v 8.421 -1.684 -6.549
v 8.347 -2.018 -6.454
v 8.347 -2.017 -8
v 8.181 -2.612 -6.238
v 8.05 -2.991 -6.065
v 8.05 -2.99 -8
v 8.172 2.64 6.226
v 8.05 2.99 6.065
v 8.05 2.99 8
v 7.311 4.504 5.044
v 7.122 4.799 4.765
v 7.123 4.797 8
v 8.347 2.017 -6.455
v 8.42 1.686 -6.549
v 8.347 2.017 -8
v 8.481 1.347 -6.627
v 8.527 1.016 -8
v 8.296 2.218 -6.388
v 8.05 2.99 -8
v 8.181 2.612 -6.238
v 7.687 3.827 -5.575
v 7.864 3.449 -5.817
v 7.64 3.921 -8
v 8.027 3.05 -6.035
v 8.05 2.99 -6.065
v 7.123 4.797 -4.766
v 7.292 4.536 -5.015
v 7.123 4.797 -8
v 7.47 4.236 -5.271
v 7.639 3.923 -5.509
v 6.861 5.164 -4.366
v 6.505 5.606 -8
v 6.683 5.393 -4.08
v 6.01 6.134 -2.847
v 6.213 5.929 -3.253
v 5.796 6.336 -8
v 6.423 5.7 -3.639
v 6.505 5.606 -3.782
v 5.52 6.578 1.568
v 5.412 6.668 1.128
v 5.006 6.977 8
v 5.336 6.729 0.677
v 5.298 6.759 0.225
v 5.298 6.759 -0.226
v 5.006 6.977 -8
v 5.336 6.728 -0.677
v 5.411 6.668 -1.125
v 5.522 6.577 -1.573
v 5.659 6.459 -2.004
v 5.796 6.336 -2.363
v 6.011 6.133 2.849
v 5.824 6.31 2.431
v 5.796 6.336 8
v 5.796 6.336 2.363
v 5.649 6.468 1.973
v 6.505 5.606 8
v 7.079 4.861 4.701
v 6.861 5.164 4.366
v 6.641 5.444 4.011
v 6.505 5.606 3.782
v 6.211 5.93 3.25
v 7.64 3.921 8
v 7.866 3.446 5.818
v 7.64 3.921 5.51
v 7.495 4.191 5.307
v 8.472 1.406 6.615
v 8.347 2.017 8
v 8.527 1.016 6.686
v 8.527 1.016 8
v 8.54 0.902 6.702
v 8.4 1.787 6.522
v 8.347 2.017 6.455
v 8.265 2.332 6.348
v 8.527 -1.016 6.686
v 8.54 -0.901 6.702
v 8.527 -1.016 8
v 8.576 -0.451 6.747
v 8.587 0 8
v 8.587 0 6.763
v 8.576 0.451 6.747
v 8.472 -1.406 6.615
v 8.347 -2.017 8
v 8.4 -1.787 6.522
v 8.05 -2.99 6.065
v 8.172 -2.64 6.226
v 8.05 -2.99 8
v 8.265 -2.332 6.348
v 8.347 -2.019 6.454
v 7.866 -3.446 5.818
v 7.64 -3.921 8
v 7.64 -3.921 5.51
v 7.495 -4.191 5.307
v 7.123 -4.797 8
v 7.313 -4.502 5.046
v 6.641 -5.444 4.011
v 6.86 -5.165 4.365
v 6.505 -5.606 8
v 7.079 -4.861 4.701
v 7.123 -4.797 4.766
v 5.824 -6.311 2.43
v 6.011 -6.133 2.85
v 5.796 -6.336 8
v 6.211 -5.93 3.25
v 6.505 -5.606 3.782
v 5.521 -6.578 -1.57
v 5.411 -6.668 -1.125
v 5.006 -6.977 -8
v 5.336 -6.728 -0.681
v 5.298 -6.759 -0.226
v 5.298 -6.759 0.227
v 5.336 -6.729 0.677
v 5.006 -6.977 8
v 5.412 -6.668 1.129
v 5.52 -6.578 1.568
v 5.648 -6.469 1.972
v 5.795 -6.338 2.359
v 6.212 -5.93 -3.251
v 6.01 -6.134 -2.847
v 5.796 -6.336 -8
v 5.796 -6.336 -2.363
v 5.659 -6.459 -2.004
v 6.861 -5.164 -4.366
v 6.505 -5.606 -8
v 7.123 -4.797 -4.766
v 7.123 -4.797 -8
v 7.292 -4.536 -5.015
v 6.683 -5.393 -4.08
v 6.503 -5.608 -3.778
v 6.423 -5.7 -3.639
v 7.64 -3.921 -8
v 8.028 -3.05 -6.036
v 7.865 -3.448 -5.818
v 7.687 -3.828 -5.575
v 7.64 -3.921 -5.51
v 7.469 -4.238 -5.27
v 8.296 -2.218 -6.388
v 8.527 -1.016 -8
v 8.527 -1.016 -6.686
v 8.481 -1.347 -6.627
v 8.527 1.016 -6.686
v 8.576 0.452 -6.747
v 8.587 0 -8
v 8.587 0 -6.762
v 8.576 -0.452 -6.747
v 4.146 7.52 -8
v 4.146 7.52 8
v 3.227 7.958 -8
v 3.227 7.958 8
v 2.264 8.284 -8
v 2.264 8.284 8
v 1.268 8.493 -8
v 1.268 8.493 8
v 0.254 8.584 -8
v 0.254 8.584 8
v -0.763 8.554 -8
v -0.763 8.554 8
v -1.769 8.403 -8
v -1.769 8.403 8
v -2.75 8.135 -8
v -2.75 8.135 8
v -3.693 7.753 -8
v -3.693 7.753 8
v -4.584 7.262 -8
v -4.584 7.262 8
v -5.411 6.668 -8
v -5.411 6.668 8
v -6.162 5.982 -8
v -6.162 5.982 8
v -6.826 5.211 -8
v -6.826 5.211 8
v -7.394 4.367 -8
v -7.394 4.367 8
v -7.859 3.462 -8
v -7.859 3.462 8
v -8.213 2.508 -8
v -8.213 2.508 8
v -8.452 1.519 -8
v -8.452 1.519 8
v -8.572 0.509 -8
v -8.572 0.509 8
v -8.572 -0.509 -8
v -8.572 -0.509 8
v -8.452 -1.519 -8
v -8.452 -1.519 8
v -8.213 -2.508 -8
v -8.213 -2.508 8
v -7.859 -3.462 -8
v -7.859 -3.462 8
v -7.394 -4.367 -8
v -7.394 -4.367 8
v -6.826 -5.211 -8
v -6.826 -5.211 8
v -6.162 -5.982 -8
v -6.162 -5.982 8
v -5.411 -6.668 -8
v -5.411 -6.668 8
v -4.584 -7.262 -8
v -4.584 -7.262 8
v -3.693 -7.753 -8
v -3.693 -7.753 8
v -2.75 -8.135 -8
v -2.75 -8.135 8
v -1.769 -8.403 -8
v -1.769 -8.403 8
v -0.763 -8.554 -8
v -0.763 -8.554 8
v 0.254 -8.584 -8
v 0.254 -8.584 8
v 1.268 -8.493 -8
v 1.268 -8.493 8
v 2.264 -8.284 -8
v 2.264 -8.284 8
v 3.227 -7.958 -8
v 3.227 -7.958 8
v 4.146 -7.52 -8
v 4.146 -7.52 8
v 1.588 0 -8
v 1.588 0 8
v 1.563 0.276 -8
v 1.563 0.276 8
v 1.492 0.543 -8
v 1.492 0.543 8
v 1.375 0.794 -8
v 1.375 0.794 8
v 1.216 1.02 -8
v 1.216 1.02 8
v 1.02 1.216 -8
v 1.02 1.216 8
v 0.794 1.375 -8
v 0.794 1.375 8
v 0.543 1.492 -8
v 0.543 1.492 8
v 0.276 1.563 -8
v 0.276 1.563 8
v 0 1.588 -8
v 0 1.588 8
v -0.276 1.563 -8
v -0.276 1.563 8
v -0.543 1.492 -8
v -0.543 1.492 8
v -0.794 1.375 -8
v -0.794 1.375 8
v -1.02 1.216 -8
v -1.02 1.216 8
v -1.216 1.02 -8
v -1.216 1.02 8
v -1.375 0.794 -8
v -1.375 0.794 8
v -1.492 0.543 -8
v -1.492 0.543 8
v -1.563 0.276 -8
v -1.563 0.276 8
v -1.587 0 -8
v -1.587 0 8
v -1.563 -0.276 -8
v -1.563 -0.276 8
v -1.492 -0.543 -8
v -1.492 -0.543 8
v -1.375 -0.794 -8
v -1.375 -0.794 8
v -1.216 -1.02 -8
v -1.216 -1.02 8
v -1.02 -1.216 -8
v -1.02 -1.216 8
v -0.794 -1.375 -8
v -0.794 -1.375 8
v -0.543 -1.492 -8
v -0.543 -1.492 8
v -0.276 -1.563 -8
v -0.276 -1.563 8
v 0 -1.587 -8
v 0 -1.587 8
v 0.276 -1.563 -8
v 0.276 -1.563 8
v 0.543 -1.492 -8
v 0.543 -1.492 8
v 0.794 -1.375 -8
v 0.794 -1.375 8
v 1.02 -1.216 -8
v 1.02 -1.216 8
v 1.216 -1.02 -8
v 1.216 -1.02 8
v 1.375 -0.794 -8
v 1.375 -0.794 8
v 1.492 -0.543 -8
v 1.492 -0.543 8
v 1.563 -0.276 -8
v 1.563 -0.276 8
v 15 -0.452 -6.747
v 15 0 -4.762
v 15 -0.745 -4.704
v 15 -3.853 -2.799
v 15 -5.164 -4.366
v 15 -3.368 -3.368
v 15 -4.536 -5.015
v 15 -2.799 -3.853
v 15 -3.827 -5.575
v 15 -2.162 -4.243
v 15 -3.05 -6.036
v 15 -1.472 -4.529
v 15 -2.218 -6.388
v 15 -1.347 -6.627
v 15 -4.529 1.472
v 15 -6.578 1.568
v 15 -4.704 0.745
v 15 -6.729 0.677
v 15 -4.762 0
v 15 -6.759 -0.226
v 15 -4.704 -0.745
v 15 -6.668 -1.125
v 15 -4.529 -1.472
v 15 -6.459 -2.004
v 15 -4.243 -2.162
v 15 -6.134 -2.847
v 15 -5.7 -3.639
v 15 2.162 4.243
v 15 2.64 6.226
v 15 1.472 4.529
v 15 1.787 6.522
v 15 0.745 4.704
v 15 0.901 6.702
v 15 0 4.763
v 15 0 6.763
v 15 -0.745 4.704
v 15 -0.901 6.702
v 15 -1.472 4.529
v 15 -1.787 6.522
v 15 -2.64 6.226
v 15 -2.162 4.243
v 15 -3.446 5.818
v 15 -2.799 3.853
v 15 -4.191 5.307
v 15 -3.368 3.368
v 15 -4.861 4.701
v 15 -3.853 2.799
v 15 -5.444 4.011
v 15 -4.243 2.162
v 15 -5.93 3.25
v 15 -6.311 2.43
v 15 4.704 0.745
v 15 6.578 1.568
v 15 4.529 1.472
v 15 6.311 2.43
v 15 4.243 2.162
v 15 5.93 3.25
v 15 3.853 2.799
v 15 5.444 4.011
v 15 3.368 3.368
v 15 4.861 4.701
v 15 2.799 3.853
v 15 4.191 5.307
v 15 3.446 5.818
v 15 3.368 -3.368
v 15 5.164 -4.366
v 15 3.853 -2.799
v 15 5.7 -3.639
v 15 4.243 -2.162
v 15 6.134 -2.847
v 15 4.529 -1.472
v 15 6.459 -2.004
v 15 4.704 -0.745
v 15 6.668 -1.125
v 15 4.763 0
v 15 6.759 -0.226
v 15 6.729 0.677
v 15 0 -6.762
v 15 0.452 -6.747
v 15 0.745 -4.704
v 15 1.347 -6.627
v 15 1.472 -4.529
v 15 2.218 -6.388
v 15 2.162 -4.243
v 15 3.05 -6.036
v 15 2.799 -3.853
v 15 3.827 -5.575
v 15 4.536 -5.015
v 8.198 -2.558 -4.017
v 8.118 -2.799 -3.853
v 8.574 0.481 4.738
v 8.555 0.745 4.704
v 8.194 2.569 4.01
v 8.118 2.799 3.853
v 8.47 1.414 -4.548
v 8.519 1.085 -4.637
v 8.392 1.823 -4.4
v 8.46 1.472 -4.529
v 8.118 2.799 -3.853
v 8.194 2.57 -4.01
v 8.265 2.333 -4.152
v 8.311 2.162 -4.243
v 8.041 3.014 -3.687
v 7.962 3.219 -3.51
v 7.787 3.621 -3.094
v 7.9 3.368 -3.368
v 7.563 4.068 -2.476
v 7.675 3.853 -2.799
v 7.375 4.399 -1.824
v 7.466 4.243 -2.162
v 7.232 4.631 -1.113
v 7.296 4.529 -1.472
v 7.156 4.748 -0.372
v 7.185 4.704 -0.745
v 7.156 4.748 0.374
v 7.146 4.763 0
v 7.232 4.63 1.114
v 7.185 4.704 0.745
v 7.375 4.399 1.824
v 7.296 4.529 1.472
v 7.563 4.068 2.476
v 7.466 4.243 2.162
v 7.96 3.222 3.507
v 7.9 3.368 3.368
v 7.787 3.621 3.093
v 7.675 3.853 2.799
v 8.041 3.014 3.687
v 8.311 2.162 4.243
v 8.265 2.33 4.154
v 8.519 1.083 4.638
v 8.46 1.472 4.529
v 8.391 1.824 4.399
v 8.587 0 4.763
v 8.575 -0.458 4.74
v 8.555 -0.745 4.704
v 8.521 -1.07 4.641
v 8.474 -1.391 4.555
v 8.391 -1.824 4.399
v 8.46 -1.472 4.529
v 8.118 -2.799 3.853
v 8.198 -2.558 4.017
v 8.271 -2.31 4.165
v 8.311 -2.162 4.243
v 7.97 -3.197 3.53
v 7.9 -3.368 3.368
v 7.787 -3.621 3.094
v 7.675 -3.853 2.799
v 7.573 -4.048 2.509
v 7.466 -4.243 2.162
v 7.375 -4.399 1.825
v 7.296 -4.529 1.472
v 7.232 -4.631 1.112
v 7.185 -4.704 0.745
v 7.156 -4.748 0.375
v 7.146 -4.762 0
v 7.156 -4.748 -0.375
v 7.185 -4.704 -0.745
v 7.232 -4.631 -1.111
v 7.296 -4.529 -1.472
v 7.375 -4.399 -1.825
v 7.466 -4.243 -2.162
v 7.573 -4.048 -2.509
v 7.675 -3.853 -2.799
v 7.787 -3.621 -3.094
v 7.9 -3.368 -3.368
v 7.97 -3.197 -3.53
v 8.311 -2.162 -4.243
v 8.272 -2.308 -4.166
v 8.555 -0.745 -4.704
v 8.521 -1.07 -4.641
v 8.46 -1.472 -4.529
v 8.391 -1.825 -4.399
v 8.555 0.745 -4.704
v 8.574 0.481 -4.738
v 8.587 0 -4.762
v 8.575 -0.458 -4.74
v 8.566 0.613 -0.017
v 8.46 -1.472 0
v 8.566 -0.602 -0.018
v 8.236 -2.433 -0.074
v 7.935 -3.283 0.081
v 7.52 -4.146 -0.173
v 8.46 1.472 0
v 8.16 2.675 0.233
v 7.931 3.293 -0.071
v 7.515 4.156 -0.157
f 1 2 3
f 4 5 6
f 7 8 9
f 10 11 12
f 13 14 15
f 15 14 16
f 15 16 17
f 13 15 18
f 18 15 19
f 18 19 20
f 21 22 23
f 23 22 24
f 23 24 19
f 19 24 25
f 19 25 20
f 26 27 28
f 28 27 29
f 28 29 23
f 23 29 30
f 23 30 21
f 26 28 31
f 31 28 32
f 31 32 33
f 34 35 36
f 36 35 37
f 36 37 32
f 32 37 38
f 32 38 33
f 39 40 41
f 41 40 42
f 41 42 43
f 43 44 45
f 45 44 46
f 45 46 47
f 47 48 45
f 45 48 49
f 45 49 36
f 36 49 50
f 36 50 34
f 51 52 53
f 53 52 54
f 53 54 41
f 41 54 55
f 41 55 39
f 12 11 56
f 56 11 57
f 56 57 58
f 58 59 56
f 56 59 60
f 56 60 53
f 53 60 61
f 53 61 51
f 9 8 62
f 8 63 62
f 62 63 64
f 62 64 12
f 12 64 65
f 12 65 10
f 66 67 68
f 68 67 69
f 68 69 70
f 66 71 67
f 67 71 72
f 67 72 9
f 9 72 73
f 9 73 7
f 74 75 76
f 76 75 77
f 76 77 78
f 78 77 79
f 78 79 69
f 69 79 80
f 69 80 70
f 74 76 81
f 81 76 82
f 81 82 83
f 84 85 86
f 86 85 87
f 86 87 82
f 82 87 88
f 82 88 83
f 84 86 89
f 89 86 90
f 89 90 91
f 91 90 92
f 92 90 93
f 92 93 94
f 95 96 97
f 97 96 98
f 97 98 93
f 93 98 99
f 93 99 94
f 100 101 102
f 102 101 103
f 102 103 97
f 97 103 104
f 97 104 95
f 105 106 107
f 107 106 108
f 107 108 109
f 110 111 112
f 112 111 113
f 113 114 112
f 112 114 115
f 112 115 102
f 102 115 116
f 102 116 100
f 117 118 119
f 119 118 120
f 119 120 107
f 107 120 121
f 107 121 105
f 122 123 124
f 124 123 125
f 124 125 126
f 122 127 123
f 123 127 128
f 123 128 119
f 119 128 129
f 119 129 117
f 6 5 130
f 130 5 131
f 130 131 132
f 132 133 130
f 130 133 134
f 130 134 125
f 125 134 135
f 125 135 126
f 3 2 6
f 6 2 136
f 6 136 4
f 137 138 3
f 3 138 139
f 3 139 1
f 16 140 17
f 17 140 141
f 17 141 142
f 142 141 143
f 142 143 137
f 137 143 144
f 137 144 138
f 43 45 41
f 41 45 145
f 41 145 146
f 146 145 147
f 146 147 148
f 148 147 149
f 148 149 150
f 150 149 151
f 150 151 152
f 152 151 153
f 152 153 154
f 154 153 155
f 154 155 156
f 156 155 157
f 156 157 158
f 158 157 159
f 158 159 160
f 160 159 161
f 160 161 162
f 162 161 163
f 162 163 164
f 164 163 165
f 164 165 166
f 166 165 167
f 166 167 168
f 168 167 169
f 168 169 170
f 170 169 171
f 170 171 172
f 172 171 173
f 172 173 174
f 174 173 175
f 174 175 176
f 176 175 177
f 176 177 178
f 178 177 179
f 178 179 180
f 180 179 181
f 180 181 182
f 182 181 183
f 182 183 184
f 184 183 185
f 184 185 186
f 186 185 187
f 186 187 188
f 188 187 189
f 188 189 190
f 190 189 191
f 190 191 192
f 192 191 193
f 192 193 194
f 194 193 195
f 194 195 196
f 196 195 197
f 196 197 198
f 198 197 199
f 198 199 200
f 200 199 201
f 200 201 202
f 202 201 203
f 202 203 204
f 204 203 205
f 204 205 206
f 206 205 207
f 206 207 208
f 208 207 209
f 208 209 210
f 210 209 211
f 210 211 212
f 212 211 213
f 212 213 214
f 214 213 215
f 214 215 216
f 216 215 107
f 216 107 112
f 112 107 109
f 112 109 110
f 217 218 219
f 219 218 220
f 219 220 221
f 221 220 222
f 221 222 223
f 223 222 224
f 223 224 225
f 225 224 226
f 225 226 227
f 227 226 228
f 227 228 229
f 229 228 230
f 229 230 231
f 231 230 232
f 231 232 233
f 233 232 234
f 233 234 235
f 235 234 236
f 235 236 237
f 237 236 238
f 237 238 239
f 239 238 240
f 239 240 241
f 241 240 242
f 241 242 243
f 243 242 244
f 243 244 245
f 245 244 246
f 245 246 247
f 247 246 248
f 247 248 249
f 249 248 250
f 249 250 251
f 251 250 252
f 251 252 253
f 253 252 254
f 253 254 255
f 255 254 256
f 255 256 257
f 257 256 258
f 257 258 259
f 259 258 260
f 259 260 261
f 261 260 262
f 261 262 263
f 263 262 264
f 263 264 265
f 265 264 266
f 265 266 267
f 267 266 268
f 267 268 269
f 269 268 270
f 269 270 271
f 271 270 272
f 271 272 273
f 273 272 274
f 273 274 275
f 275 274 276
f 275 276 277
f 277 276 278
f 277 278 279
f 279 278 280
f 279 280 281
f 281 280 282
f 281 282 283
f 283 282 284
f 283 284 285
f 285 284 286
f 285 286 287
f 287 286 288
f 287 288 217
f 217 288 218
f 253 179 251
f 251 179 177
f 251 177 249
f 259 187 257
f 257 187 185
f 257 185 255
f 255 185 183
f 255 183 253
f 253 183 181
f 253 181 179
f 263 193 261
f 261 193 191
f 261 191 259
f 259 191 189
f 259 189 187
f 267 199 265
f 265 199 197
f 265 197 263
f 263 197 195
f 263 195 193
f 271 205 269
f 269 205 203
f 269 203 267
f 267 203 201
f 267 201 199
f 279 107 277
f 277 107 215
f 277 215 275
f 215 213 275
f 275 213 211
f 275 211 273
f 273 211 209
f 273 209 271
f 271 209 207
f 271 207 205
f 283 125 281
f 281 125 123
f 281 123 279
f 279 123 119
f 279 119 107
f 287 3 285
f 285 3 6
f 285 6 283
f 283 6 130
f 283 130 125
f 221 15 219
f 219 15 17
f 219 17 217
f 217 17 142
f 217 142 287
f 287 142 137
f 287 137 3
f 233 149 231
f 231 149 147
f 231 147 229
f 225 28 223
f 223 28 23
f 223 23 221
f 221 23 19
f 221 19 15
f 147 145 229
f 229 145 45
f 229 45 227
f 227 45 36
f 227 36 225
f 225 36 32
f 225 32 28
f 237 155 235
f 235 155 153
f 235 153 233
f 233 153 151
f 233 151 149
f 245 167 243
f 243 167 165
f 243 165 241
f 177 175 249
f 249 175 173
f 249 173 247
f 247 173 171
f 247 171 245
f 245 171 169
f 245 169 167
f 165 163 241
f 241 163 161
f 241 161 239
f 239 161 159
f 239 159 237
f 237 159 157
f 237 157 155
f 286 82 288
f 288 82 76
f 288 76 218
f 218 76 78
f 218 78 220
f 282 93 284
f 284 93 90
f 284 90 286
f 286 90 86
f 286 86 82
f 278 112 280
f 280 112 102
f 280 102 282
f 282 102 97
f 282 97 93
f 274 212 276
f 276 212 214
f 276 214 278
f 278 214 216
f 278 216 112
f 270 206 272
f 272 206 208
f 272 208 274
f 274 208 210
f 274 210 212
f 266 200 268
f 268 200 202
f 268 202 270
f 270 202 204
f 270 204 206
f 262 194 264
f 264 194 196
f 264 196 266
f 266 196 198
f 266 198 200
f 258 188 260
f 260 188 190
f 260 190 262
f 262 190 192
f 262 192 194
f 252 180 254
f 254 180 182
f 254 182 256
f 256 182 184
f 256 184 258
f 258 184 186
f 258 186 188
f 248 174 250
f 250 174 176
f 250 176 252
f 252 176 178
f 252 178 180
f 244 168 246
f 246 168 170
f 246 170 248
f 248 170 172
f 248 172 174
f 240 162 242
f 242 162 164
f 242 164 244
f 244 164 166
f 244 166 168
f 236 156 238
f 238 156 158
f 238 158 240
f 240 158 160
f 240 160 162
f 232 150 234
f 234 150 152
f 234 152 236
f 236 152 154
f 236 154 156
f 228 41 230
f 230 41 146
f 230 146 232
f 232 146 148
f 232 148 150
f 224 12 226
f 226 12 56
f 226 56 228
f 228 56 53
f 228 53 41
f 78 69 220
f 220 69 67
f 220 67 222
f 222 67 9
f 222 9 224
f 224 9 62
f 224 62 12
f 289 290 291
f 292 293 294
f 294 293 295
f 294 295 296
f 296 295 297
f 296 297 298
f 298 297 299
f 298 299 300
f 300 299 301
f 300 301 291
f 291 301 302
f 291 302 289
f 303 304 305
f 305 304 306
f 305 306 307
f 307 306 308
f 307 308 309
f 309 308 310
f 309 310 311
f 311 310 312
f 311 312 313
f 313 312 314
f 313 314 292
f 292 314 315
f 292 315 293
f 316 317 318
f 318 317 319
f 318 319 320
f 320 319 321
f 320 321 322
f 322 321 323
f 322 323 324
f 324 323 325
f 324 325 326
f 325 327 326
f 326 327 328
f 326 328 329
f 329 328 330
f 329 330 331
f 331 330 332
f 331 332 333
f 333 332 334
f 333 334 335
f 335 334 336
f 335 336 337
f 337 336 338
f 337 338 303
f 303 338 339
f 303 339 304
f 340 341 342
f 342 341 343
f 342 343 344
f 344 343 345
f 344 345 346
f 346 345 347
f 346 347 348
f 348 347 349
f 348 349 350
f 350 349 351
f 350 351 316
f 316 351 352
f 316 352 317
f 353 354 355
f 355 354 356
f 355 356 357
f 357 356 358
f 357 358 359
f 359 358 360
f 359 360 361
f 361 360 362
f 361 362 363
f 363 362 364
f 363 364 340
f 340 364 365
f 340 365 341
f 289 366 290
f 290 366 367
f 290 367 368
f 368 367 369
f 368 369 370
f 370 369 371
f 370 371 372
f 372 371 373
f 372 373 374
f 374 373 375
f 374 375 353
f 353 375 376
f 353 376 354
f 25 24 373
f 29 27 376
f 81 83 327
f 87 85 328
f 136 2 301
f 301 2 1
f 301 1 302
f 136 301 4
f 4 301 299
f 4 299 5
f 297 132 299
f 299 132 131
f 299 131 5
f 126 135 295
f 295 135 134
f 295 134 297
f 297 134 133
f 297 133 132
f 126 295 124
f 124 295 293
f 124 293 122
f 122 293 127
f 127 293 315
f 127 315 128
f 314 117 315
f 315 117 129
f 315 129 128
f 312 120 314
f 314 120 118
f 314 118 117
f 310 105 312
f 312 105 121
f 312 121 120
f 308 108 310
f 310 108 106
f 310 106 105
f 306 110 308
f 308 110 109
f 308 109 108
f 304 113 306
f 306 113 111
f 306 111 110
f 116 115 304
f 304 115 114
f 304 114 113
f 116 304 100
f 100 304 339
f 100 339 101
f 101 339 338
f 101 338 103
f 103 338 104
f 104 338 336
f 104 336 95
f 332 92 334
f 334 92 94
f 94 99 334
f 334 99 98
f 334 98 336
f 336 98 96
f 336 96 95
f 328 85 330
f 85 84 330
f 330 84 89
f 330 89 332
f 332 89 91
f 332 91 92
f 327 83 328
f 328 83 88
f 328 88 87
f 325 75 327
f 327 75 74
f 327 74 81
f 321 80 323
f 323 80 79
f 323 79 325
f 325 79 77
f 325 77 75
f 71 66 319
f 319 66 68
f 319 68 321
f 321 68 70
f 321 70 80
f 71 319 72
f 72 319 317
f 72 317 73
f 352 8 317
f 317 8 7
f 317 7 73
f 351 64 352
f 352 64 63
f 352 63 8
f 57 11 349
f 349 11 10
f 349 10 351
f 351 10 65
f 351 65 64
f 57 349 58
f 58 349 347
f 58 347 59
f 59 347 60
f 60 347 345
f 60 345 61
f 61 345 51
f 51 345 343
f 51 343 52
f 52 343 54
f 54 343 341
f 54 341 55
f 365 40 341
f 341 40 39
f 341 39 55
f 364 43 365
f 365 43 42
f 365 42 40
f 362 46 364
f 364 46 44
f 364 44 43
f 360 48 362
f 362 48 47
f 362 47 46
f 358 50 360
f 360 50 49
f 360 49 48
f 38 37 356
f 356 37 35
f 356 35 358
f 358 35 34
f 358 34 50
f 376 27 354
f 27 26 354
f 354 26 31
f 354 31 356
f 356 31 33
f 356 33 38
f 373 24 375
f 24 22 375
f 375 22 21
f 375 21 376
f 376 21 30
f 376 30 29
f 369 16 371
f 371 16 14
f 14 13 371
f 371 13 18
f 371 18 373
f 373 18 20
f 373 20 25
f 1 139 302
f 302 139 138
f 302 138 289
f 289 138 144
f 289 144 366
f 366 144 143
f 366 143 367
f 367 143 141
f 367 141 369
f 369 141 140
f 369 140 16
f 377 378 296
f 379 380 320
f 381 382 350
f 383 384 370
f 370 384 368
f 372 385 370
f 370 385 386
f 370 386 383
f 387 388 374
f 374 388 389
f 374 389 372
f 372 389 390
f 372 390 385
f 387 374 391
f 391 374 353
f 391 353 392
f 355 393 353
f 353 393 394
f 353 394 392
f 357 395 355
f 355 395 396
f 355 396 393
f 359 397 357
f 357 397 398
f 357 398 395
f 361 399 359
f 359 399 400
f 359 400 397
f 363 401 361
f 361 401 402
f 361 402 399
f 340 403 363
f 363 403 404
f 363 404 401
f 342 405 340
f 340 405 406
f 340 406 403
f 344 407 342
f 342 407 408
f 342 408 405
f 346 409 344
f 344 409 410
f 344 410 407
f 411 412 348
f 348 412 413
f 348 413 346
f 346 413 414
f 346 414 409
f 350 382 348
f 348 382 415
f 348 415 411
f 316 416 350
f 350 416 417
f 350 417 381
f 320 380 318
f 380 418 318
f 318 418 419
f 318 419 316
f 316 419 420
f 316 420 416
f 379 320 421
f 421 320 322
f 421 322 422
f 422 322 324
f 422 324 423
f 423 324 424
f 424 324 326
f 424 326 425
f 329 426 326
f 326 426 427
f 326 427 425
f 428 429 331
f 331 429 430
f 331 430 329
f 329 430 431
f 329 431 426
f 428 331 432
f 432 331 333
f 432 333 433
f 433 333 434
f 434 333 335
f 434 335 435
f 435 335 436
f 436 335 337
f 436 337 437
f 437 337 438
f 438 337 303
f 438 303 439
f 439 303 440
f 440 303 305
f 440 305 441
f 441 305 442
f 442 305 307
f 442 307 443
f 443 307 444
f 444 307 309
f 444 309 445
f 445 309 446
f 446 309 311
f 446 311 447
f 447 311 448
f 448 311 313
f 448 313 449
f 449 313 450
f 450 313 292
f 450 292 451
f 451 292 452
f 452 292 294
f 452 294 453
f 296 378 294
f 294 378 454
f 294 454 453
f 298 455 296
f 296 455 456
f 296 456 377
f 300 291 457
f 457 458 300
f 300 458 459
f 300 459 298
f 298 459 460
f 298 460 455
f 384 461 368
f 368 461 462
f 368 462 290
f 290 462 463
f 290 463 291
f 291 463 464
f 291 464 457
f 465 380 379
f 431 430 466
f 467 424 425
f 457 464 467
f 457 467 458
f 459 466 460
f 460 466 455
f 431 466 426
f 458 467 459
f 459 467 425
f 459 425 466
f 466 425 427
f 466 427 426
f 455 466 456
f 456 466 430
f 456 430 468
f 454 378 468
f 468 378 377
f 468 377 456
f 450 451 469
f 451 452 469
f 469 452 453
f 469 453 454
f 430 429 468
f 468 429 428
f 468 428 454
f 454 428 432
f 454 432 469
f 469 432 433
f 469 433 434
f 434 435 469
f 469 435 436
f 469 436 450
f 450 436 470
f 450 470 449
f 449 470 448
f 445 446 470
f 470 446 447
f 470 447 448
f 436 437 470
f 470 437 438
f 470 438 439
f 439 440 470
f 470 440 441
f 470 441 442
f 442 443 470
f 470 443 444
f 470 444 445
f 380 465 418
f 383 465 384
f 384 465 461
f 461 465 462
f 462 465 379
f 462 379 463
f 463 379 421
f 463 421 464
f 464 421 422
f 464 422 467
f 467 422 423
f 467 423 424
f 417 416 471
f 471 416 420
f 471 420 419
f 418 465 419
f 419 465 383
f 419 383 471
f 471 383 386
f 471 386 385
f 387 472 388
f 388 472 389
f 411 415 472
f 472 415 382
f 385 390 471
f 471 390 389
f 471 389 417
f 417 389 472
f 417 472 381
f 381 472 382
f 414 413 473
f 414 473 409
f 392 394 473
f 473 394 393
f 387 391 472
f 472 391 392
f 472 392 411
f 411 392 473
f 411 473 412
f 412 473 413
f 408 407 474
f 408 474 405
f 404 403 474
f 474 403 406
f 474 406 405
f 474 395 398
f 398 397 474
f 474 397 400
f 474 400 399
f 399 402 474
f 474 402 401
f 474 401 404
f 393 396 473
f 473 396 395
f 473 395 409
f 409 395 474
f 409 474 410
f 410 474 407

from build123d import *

# Parameters (mm, degrees)
BOSS_EXTRUDE2_DEPTH      = 8
BOSS_EXTRUDE2_DEPTH_BACK = 8
SKETCH1_R                = 8.5875
SKETCH1_R_2              = 1.5875
SKETCH2_R                = 6.7625
SKETCH2_R_2              = 4.7625
BOSS_EXTRUDE3_DEPTH      = 15
CUT_EXTRUDE1_DEPTH       = 10
CUT_EXTRUDE1_DEPTH_BACK  = 10
SKETCH3_R                = 1.5875


with BuildPart() as part:
    # Sketch1 → Boss-Extrude2 (new, two sides: drawn at the far end of the back side and taken through both)
    with BuildSketch(Plane.XY.offset(-BOSS_EXTRUDE2_DEPTH_BACK)):
        Circle(SKETCH1_R)
        Circle(SKETCH1_R_2, mode=Mode.SUBTRACT)
    extrude(amount=BOSS_EXTRUDE2_DEPTH + BOSS_EXTRUDE2_DEPTH_BACK)

    # Sketch2 → Boss-Extrude3 (add)
    with BuildSketch(Plane(origin=(0, 0, 0), x_dir=(0, 0, -1), z_dir=(1, 0, 0))):
        Circle(SKETCH2_R)
        Circle(SKETCH2_R_2, mode=Mode.SUBTRACT)
    extrude(amount=BOSS_EXTRUDE3_DEPTH)

    # Sketch3 → Cut-Extrude1 (cut, two sides: drawn at the far end of the back side and taken through both)
    with BuildSketch(Plane.XY.offset(-CUT_EXTRUDE1_DEPTH_BACK)):
        Circle(SKETCH3_R)
    extrude(amount=CUT_EXTRUDE1_DEPTH + CUT_EXTRUDE1_DEPTH_BACK, mode=Mode.SUBTRACT)


solid = part.part
